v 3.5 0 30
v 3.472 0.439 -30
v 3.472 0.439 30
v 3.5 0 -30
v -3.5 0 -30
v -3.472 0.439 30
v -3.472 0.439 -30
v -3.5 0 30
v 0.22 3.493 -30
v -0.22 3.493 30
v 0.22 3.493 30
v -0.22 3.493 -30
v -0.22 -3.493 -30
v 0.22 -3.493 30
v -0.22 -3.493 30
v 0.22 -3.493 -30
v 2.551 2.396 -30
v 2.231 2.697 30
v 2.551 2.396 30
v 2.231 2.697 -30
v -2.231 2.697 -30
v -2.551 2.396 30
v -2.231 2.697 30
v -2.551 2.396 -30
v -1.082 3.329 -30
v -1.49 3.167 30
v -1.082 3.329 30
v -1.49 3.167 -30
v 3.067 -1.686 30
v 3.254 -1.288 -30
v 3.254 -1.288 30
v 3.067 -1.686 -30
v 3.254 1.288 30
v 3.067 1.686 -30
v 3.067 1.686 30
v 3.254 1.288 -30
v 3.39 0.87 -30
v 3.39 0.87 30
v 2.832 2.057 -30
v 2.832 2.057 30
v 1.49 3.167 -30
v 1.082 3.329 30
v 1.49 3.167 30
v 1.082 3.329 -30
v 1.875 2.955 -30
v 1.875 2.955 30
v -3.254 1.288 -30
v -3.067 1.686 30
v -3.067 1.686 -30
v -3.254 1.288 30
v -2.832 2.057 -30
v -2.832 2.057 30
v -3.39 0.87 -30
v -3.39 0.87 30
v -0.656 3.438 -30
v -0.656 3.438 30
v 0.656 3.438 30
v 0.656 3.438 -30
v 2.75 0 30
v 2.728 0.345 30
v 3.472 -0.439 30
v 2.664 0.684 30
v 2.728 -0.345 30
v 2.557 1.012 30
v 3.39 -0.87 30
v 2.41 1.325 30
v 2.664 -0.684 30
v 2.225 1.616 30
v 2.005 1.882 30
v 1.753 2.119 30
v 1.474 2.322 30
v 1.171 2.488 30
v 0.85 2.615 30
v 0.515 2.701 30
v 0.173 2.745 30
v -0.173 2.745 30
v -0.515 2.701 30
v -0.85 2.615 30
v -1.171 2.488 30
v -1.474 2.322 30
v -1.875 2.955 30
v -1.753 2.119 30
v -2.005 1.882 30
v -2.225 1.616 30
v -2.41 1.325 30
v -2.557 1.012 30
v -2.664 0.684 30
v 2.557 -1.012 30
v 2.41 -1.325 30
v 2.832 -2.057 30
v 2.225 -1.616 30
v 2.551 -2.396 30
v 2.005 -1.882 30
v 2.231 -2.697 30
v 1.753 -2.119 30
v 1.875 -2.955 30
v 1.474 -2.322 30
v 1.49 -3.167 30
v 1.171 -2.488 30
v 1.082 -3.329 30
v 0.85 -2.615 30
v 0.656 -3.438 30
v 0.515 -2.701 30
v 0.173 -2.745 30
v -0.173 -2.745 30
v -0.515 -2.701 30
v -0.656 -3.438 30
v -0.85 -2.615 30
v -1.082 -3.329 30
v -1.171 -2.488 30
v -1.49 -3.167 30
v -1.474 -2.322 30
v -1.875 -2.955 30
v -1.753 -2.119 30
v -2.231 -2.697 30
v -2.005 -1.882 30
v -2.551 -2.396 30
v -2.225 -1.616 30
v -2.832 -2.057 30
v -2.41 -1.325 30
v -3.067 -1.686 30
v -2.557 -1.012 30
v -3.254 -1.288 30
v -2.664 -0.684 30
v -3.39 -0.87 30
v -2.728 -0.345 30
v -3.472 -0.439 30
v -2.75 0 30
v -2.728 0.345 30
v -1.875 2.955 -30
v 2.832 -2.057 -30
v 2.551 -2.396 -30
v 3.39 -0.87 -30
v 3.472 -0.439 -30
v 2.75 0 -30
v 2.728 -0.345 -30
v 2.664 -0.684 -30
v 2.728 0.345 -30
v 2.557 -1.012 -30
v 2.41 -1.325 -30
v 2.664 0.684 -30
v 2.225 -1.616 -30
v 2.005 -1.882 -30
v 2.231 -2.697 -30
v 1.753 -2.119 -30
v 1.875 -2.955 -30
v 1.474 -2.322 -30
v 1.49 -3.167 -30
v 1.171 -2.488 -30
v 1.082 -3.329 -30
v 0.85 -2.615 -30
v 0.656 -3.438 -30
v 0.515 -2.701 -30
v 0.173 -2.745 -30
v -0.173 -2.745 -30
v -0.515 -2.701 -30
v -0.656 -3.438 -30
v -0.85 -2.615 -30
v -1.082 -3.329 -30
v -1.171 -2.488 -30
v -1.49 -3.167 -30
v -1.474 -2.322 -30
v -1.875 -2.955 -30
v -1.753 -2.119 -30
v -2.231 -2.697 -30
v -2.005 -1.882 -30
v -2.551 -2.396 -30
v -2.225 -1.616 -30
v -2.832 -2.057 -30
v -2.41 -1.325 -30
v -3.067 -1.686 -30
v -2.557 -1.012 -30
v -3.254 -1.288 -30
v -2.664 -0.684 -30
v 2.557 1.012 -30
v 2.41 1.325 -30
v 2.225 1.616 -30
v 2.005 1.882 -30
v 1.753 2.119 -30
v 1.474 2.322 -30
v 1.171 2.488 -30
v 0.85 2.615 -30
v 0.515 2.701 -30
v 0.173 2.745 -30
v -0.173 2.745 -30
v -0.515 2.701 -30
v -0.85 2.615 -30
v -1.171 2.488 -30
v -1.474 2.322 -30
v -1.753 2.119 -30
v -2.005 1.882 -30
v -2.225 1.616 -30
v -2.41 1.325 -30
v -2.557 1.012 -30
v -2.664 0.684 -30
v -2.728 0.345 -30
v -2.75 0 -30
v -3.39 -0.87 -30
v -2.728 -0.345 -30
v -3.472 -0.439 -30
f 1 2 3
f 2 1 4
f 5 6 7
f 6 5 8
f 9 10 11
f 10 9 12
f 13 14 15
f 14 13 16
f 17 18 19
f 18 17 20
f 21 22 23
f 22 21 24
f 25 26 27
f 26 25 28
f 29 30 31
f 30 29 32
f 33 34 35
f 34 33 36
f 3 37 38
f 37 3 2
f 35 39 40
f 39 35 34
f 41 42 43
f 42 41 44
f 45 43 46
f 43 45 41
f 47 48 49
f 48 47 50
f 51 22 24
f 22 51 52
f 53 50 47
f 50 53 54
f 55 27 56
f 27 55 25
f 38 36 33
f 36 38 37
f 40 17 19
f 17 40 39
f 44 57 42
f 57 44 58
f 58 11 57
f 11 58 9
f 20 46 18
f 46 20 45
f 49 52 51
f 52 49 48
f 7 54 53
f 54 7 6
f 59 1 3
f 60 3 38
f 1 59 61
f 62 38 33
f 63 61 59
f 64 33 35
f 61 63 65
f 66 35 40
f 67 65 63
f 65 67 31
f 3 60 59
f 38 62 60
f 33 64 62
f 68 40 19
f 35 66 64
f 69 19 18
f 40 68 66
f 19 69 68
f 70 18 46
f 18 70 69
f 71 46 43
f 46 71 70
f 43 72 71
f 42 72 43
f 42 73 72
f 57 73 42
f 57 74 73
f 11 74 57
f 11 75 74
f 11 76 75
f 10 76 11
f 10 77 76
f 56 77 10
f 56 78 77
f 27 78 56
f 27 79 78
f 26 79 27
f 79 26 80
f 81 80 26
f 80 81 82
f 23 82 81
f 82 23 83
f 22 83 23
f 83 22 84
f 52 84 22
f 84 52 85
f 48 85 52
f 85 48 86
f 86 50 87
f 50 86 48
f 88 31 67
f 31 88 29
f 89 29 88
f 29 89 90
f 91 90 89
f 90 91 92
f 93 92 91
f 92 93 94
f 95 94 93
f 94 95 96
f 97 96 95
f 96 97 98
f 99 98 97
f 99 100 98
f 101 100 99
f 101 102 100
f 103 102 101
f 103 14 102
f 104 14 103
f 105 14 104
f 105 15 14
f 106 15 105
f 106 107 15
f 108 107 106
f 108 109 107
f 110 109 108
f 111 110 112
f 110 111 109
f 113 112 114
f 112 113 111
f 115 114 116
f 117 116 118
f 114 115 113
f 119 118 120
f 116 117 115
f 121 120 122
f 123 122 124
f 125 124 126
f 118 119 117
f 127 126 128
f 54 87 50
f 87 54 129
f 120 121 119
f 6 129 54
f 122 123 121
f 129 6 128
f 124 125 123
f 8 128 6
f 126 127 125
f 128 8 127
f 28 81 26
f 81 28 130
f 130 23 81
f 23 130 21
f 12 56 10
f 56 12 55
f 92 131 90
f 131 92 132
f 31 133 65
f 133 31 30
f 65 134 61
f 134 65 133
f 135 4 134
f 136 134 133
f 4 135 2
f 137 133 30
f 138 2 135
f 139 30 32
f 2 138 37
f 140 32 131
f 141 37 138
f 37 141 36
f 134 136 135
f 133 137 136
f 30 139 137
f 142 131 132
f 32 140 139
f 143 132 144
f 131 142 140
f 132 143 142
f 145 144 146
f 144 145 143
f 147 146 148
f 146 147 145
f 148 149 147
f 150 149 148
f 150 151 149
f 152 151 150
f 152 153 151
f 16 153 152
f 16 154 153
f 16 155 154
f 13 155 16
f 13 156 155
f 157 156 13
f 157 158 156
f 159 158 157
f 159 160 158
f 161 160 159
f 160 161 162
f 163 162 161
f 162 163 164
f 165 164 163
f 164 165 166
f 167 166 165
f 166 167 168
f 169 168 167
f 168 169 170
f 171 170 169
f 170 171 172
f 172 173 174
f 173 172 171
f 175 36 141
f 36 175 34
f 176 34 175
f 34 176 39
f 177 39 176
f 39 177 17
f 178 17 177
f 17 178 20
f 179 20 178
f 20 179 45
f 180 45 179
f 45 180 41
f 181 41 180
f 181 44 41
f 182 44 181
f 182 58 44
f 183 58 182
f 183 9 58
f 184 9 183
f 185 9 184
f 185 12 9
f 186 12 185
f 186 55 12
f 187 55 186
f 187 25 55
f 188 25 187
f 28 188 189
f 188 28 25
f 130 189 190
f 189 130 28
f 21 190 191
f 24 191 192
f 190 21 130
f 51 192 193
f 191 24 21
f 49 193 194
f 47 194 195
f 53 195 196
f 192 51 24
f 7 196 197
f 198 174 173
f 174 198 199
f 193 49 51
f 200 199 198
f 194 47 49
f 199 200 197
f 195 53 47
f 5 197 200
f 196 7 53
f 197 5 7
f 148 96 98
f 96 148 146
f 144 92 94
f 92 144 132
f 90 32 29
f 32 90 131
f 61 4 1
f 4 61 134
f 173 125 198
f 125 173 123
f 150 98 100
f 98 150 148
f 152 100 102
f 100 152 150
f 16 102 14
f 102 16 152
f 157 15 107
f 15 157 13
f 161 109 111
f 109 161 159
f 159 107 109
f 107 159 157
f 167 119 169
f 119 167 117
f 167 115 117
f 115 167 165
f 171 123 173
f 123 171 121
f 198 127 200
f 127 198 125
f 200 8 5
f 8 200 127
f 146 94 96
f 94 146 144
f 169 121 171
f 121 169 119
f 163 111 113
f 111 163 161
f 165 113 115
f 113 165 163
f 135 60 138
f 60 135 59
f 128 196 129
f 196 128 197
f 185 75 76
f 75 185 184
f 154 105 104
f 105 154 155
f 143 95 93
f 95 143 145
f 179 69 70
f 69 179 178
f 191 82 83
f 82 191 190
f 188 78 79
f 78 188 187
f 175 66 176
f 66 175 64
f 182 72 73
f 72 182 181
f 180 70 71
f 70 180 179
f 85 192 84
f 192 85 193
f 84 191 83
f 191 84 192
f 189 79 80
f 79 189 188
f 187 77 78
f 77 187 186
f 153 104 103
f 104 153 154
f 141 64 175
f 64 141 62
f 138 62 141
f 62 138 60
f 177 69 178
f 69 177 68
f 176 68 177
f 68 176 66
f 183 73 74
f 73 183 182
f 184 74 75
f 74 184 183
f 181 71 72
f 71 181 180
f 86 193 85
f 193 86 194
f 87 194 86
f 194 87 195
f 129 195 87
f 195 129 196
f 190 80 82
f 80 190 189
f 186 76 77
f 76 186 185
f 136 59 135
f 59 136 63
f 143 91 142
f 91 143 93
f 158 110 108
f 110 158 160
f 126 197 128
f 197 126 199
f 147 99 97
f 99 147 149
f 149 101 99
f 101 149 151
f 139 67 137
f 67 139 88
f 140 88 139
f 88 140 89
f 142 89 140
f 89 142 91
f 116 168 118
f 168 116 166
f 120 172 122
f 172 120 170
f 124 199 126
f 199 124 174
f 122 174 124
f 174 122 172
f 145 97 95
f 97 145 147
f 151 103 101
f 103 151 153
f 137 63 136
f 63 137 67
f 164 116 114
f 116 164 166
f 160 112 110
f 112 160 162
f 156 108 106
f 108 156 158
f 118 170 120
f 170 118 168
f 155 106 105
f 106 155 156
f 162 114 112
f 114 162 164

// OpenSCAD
$fn = 50;


difference() {
	union() {
		translate(v = [0, 0, -30.0000000000]) {
			cylinder(h = 60, r = 3.5000000000);
		}
	}
	union() {
		translate(v = [0, 0, -100.0000000000]) {
			cylinder(h = 200, r = 2.7500000000);
		}
	}
}
